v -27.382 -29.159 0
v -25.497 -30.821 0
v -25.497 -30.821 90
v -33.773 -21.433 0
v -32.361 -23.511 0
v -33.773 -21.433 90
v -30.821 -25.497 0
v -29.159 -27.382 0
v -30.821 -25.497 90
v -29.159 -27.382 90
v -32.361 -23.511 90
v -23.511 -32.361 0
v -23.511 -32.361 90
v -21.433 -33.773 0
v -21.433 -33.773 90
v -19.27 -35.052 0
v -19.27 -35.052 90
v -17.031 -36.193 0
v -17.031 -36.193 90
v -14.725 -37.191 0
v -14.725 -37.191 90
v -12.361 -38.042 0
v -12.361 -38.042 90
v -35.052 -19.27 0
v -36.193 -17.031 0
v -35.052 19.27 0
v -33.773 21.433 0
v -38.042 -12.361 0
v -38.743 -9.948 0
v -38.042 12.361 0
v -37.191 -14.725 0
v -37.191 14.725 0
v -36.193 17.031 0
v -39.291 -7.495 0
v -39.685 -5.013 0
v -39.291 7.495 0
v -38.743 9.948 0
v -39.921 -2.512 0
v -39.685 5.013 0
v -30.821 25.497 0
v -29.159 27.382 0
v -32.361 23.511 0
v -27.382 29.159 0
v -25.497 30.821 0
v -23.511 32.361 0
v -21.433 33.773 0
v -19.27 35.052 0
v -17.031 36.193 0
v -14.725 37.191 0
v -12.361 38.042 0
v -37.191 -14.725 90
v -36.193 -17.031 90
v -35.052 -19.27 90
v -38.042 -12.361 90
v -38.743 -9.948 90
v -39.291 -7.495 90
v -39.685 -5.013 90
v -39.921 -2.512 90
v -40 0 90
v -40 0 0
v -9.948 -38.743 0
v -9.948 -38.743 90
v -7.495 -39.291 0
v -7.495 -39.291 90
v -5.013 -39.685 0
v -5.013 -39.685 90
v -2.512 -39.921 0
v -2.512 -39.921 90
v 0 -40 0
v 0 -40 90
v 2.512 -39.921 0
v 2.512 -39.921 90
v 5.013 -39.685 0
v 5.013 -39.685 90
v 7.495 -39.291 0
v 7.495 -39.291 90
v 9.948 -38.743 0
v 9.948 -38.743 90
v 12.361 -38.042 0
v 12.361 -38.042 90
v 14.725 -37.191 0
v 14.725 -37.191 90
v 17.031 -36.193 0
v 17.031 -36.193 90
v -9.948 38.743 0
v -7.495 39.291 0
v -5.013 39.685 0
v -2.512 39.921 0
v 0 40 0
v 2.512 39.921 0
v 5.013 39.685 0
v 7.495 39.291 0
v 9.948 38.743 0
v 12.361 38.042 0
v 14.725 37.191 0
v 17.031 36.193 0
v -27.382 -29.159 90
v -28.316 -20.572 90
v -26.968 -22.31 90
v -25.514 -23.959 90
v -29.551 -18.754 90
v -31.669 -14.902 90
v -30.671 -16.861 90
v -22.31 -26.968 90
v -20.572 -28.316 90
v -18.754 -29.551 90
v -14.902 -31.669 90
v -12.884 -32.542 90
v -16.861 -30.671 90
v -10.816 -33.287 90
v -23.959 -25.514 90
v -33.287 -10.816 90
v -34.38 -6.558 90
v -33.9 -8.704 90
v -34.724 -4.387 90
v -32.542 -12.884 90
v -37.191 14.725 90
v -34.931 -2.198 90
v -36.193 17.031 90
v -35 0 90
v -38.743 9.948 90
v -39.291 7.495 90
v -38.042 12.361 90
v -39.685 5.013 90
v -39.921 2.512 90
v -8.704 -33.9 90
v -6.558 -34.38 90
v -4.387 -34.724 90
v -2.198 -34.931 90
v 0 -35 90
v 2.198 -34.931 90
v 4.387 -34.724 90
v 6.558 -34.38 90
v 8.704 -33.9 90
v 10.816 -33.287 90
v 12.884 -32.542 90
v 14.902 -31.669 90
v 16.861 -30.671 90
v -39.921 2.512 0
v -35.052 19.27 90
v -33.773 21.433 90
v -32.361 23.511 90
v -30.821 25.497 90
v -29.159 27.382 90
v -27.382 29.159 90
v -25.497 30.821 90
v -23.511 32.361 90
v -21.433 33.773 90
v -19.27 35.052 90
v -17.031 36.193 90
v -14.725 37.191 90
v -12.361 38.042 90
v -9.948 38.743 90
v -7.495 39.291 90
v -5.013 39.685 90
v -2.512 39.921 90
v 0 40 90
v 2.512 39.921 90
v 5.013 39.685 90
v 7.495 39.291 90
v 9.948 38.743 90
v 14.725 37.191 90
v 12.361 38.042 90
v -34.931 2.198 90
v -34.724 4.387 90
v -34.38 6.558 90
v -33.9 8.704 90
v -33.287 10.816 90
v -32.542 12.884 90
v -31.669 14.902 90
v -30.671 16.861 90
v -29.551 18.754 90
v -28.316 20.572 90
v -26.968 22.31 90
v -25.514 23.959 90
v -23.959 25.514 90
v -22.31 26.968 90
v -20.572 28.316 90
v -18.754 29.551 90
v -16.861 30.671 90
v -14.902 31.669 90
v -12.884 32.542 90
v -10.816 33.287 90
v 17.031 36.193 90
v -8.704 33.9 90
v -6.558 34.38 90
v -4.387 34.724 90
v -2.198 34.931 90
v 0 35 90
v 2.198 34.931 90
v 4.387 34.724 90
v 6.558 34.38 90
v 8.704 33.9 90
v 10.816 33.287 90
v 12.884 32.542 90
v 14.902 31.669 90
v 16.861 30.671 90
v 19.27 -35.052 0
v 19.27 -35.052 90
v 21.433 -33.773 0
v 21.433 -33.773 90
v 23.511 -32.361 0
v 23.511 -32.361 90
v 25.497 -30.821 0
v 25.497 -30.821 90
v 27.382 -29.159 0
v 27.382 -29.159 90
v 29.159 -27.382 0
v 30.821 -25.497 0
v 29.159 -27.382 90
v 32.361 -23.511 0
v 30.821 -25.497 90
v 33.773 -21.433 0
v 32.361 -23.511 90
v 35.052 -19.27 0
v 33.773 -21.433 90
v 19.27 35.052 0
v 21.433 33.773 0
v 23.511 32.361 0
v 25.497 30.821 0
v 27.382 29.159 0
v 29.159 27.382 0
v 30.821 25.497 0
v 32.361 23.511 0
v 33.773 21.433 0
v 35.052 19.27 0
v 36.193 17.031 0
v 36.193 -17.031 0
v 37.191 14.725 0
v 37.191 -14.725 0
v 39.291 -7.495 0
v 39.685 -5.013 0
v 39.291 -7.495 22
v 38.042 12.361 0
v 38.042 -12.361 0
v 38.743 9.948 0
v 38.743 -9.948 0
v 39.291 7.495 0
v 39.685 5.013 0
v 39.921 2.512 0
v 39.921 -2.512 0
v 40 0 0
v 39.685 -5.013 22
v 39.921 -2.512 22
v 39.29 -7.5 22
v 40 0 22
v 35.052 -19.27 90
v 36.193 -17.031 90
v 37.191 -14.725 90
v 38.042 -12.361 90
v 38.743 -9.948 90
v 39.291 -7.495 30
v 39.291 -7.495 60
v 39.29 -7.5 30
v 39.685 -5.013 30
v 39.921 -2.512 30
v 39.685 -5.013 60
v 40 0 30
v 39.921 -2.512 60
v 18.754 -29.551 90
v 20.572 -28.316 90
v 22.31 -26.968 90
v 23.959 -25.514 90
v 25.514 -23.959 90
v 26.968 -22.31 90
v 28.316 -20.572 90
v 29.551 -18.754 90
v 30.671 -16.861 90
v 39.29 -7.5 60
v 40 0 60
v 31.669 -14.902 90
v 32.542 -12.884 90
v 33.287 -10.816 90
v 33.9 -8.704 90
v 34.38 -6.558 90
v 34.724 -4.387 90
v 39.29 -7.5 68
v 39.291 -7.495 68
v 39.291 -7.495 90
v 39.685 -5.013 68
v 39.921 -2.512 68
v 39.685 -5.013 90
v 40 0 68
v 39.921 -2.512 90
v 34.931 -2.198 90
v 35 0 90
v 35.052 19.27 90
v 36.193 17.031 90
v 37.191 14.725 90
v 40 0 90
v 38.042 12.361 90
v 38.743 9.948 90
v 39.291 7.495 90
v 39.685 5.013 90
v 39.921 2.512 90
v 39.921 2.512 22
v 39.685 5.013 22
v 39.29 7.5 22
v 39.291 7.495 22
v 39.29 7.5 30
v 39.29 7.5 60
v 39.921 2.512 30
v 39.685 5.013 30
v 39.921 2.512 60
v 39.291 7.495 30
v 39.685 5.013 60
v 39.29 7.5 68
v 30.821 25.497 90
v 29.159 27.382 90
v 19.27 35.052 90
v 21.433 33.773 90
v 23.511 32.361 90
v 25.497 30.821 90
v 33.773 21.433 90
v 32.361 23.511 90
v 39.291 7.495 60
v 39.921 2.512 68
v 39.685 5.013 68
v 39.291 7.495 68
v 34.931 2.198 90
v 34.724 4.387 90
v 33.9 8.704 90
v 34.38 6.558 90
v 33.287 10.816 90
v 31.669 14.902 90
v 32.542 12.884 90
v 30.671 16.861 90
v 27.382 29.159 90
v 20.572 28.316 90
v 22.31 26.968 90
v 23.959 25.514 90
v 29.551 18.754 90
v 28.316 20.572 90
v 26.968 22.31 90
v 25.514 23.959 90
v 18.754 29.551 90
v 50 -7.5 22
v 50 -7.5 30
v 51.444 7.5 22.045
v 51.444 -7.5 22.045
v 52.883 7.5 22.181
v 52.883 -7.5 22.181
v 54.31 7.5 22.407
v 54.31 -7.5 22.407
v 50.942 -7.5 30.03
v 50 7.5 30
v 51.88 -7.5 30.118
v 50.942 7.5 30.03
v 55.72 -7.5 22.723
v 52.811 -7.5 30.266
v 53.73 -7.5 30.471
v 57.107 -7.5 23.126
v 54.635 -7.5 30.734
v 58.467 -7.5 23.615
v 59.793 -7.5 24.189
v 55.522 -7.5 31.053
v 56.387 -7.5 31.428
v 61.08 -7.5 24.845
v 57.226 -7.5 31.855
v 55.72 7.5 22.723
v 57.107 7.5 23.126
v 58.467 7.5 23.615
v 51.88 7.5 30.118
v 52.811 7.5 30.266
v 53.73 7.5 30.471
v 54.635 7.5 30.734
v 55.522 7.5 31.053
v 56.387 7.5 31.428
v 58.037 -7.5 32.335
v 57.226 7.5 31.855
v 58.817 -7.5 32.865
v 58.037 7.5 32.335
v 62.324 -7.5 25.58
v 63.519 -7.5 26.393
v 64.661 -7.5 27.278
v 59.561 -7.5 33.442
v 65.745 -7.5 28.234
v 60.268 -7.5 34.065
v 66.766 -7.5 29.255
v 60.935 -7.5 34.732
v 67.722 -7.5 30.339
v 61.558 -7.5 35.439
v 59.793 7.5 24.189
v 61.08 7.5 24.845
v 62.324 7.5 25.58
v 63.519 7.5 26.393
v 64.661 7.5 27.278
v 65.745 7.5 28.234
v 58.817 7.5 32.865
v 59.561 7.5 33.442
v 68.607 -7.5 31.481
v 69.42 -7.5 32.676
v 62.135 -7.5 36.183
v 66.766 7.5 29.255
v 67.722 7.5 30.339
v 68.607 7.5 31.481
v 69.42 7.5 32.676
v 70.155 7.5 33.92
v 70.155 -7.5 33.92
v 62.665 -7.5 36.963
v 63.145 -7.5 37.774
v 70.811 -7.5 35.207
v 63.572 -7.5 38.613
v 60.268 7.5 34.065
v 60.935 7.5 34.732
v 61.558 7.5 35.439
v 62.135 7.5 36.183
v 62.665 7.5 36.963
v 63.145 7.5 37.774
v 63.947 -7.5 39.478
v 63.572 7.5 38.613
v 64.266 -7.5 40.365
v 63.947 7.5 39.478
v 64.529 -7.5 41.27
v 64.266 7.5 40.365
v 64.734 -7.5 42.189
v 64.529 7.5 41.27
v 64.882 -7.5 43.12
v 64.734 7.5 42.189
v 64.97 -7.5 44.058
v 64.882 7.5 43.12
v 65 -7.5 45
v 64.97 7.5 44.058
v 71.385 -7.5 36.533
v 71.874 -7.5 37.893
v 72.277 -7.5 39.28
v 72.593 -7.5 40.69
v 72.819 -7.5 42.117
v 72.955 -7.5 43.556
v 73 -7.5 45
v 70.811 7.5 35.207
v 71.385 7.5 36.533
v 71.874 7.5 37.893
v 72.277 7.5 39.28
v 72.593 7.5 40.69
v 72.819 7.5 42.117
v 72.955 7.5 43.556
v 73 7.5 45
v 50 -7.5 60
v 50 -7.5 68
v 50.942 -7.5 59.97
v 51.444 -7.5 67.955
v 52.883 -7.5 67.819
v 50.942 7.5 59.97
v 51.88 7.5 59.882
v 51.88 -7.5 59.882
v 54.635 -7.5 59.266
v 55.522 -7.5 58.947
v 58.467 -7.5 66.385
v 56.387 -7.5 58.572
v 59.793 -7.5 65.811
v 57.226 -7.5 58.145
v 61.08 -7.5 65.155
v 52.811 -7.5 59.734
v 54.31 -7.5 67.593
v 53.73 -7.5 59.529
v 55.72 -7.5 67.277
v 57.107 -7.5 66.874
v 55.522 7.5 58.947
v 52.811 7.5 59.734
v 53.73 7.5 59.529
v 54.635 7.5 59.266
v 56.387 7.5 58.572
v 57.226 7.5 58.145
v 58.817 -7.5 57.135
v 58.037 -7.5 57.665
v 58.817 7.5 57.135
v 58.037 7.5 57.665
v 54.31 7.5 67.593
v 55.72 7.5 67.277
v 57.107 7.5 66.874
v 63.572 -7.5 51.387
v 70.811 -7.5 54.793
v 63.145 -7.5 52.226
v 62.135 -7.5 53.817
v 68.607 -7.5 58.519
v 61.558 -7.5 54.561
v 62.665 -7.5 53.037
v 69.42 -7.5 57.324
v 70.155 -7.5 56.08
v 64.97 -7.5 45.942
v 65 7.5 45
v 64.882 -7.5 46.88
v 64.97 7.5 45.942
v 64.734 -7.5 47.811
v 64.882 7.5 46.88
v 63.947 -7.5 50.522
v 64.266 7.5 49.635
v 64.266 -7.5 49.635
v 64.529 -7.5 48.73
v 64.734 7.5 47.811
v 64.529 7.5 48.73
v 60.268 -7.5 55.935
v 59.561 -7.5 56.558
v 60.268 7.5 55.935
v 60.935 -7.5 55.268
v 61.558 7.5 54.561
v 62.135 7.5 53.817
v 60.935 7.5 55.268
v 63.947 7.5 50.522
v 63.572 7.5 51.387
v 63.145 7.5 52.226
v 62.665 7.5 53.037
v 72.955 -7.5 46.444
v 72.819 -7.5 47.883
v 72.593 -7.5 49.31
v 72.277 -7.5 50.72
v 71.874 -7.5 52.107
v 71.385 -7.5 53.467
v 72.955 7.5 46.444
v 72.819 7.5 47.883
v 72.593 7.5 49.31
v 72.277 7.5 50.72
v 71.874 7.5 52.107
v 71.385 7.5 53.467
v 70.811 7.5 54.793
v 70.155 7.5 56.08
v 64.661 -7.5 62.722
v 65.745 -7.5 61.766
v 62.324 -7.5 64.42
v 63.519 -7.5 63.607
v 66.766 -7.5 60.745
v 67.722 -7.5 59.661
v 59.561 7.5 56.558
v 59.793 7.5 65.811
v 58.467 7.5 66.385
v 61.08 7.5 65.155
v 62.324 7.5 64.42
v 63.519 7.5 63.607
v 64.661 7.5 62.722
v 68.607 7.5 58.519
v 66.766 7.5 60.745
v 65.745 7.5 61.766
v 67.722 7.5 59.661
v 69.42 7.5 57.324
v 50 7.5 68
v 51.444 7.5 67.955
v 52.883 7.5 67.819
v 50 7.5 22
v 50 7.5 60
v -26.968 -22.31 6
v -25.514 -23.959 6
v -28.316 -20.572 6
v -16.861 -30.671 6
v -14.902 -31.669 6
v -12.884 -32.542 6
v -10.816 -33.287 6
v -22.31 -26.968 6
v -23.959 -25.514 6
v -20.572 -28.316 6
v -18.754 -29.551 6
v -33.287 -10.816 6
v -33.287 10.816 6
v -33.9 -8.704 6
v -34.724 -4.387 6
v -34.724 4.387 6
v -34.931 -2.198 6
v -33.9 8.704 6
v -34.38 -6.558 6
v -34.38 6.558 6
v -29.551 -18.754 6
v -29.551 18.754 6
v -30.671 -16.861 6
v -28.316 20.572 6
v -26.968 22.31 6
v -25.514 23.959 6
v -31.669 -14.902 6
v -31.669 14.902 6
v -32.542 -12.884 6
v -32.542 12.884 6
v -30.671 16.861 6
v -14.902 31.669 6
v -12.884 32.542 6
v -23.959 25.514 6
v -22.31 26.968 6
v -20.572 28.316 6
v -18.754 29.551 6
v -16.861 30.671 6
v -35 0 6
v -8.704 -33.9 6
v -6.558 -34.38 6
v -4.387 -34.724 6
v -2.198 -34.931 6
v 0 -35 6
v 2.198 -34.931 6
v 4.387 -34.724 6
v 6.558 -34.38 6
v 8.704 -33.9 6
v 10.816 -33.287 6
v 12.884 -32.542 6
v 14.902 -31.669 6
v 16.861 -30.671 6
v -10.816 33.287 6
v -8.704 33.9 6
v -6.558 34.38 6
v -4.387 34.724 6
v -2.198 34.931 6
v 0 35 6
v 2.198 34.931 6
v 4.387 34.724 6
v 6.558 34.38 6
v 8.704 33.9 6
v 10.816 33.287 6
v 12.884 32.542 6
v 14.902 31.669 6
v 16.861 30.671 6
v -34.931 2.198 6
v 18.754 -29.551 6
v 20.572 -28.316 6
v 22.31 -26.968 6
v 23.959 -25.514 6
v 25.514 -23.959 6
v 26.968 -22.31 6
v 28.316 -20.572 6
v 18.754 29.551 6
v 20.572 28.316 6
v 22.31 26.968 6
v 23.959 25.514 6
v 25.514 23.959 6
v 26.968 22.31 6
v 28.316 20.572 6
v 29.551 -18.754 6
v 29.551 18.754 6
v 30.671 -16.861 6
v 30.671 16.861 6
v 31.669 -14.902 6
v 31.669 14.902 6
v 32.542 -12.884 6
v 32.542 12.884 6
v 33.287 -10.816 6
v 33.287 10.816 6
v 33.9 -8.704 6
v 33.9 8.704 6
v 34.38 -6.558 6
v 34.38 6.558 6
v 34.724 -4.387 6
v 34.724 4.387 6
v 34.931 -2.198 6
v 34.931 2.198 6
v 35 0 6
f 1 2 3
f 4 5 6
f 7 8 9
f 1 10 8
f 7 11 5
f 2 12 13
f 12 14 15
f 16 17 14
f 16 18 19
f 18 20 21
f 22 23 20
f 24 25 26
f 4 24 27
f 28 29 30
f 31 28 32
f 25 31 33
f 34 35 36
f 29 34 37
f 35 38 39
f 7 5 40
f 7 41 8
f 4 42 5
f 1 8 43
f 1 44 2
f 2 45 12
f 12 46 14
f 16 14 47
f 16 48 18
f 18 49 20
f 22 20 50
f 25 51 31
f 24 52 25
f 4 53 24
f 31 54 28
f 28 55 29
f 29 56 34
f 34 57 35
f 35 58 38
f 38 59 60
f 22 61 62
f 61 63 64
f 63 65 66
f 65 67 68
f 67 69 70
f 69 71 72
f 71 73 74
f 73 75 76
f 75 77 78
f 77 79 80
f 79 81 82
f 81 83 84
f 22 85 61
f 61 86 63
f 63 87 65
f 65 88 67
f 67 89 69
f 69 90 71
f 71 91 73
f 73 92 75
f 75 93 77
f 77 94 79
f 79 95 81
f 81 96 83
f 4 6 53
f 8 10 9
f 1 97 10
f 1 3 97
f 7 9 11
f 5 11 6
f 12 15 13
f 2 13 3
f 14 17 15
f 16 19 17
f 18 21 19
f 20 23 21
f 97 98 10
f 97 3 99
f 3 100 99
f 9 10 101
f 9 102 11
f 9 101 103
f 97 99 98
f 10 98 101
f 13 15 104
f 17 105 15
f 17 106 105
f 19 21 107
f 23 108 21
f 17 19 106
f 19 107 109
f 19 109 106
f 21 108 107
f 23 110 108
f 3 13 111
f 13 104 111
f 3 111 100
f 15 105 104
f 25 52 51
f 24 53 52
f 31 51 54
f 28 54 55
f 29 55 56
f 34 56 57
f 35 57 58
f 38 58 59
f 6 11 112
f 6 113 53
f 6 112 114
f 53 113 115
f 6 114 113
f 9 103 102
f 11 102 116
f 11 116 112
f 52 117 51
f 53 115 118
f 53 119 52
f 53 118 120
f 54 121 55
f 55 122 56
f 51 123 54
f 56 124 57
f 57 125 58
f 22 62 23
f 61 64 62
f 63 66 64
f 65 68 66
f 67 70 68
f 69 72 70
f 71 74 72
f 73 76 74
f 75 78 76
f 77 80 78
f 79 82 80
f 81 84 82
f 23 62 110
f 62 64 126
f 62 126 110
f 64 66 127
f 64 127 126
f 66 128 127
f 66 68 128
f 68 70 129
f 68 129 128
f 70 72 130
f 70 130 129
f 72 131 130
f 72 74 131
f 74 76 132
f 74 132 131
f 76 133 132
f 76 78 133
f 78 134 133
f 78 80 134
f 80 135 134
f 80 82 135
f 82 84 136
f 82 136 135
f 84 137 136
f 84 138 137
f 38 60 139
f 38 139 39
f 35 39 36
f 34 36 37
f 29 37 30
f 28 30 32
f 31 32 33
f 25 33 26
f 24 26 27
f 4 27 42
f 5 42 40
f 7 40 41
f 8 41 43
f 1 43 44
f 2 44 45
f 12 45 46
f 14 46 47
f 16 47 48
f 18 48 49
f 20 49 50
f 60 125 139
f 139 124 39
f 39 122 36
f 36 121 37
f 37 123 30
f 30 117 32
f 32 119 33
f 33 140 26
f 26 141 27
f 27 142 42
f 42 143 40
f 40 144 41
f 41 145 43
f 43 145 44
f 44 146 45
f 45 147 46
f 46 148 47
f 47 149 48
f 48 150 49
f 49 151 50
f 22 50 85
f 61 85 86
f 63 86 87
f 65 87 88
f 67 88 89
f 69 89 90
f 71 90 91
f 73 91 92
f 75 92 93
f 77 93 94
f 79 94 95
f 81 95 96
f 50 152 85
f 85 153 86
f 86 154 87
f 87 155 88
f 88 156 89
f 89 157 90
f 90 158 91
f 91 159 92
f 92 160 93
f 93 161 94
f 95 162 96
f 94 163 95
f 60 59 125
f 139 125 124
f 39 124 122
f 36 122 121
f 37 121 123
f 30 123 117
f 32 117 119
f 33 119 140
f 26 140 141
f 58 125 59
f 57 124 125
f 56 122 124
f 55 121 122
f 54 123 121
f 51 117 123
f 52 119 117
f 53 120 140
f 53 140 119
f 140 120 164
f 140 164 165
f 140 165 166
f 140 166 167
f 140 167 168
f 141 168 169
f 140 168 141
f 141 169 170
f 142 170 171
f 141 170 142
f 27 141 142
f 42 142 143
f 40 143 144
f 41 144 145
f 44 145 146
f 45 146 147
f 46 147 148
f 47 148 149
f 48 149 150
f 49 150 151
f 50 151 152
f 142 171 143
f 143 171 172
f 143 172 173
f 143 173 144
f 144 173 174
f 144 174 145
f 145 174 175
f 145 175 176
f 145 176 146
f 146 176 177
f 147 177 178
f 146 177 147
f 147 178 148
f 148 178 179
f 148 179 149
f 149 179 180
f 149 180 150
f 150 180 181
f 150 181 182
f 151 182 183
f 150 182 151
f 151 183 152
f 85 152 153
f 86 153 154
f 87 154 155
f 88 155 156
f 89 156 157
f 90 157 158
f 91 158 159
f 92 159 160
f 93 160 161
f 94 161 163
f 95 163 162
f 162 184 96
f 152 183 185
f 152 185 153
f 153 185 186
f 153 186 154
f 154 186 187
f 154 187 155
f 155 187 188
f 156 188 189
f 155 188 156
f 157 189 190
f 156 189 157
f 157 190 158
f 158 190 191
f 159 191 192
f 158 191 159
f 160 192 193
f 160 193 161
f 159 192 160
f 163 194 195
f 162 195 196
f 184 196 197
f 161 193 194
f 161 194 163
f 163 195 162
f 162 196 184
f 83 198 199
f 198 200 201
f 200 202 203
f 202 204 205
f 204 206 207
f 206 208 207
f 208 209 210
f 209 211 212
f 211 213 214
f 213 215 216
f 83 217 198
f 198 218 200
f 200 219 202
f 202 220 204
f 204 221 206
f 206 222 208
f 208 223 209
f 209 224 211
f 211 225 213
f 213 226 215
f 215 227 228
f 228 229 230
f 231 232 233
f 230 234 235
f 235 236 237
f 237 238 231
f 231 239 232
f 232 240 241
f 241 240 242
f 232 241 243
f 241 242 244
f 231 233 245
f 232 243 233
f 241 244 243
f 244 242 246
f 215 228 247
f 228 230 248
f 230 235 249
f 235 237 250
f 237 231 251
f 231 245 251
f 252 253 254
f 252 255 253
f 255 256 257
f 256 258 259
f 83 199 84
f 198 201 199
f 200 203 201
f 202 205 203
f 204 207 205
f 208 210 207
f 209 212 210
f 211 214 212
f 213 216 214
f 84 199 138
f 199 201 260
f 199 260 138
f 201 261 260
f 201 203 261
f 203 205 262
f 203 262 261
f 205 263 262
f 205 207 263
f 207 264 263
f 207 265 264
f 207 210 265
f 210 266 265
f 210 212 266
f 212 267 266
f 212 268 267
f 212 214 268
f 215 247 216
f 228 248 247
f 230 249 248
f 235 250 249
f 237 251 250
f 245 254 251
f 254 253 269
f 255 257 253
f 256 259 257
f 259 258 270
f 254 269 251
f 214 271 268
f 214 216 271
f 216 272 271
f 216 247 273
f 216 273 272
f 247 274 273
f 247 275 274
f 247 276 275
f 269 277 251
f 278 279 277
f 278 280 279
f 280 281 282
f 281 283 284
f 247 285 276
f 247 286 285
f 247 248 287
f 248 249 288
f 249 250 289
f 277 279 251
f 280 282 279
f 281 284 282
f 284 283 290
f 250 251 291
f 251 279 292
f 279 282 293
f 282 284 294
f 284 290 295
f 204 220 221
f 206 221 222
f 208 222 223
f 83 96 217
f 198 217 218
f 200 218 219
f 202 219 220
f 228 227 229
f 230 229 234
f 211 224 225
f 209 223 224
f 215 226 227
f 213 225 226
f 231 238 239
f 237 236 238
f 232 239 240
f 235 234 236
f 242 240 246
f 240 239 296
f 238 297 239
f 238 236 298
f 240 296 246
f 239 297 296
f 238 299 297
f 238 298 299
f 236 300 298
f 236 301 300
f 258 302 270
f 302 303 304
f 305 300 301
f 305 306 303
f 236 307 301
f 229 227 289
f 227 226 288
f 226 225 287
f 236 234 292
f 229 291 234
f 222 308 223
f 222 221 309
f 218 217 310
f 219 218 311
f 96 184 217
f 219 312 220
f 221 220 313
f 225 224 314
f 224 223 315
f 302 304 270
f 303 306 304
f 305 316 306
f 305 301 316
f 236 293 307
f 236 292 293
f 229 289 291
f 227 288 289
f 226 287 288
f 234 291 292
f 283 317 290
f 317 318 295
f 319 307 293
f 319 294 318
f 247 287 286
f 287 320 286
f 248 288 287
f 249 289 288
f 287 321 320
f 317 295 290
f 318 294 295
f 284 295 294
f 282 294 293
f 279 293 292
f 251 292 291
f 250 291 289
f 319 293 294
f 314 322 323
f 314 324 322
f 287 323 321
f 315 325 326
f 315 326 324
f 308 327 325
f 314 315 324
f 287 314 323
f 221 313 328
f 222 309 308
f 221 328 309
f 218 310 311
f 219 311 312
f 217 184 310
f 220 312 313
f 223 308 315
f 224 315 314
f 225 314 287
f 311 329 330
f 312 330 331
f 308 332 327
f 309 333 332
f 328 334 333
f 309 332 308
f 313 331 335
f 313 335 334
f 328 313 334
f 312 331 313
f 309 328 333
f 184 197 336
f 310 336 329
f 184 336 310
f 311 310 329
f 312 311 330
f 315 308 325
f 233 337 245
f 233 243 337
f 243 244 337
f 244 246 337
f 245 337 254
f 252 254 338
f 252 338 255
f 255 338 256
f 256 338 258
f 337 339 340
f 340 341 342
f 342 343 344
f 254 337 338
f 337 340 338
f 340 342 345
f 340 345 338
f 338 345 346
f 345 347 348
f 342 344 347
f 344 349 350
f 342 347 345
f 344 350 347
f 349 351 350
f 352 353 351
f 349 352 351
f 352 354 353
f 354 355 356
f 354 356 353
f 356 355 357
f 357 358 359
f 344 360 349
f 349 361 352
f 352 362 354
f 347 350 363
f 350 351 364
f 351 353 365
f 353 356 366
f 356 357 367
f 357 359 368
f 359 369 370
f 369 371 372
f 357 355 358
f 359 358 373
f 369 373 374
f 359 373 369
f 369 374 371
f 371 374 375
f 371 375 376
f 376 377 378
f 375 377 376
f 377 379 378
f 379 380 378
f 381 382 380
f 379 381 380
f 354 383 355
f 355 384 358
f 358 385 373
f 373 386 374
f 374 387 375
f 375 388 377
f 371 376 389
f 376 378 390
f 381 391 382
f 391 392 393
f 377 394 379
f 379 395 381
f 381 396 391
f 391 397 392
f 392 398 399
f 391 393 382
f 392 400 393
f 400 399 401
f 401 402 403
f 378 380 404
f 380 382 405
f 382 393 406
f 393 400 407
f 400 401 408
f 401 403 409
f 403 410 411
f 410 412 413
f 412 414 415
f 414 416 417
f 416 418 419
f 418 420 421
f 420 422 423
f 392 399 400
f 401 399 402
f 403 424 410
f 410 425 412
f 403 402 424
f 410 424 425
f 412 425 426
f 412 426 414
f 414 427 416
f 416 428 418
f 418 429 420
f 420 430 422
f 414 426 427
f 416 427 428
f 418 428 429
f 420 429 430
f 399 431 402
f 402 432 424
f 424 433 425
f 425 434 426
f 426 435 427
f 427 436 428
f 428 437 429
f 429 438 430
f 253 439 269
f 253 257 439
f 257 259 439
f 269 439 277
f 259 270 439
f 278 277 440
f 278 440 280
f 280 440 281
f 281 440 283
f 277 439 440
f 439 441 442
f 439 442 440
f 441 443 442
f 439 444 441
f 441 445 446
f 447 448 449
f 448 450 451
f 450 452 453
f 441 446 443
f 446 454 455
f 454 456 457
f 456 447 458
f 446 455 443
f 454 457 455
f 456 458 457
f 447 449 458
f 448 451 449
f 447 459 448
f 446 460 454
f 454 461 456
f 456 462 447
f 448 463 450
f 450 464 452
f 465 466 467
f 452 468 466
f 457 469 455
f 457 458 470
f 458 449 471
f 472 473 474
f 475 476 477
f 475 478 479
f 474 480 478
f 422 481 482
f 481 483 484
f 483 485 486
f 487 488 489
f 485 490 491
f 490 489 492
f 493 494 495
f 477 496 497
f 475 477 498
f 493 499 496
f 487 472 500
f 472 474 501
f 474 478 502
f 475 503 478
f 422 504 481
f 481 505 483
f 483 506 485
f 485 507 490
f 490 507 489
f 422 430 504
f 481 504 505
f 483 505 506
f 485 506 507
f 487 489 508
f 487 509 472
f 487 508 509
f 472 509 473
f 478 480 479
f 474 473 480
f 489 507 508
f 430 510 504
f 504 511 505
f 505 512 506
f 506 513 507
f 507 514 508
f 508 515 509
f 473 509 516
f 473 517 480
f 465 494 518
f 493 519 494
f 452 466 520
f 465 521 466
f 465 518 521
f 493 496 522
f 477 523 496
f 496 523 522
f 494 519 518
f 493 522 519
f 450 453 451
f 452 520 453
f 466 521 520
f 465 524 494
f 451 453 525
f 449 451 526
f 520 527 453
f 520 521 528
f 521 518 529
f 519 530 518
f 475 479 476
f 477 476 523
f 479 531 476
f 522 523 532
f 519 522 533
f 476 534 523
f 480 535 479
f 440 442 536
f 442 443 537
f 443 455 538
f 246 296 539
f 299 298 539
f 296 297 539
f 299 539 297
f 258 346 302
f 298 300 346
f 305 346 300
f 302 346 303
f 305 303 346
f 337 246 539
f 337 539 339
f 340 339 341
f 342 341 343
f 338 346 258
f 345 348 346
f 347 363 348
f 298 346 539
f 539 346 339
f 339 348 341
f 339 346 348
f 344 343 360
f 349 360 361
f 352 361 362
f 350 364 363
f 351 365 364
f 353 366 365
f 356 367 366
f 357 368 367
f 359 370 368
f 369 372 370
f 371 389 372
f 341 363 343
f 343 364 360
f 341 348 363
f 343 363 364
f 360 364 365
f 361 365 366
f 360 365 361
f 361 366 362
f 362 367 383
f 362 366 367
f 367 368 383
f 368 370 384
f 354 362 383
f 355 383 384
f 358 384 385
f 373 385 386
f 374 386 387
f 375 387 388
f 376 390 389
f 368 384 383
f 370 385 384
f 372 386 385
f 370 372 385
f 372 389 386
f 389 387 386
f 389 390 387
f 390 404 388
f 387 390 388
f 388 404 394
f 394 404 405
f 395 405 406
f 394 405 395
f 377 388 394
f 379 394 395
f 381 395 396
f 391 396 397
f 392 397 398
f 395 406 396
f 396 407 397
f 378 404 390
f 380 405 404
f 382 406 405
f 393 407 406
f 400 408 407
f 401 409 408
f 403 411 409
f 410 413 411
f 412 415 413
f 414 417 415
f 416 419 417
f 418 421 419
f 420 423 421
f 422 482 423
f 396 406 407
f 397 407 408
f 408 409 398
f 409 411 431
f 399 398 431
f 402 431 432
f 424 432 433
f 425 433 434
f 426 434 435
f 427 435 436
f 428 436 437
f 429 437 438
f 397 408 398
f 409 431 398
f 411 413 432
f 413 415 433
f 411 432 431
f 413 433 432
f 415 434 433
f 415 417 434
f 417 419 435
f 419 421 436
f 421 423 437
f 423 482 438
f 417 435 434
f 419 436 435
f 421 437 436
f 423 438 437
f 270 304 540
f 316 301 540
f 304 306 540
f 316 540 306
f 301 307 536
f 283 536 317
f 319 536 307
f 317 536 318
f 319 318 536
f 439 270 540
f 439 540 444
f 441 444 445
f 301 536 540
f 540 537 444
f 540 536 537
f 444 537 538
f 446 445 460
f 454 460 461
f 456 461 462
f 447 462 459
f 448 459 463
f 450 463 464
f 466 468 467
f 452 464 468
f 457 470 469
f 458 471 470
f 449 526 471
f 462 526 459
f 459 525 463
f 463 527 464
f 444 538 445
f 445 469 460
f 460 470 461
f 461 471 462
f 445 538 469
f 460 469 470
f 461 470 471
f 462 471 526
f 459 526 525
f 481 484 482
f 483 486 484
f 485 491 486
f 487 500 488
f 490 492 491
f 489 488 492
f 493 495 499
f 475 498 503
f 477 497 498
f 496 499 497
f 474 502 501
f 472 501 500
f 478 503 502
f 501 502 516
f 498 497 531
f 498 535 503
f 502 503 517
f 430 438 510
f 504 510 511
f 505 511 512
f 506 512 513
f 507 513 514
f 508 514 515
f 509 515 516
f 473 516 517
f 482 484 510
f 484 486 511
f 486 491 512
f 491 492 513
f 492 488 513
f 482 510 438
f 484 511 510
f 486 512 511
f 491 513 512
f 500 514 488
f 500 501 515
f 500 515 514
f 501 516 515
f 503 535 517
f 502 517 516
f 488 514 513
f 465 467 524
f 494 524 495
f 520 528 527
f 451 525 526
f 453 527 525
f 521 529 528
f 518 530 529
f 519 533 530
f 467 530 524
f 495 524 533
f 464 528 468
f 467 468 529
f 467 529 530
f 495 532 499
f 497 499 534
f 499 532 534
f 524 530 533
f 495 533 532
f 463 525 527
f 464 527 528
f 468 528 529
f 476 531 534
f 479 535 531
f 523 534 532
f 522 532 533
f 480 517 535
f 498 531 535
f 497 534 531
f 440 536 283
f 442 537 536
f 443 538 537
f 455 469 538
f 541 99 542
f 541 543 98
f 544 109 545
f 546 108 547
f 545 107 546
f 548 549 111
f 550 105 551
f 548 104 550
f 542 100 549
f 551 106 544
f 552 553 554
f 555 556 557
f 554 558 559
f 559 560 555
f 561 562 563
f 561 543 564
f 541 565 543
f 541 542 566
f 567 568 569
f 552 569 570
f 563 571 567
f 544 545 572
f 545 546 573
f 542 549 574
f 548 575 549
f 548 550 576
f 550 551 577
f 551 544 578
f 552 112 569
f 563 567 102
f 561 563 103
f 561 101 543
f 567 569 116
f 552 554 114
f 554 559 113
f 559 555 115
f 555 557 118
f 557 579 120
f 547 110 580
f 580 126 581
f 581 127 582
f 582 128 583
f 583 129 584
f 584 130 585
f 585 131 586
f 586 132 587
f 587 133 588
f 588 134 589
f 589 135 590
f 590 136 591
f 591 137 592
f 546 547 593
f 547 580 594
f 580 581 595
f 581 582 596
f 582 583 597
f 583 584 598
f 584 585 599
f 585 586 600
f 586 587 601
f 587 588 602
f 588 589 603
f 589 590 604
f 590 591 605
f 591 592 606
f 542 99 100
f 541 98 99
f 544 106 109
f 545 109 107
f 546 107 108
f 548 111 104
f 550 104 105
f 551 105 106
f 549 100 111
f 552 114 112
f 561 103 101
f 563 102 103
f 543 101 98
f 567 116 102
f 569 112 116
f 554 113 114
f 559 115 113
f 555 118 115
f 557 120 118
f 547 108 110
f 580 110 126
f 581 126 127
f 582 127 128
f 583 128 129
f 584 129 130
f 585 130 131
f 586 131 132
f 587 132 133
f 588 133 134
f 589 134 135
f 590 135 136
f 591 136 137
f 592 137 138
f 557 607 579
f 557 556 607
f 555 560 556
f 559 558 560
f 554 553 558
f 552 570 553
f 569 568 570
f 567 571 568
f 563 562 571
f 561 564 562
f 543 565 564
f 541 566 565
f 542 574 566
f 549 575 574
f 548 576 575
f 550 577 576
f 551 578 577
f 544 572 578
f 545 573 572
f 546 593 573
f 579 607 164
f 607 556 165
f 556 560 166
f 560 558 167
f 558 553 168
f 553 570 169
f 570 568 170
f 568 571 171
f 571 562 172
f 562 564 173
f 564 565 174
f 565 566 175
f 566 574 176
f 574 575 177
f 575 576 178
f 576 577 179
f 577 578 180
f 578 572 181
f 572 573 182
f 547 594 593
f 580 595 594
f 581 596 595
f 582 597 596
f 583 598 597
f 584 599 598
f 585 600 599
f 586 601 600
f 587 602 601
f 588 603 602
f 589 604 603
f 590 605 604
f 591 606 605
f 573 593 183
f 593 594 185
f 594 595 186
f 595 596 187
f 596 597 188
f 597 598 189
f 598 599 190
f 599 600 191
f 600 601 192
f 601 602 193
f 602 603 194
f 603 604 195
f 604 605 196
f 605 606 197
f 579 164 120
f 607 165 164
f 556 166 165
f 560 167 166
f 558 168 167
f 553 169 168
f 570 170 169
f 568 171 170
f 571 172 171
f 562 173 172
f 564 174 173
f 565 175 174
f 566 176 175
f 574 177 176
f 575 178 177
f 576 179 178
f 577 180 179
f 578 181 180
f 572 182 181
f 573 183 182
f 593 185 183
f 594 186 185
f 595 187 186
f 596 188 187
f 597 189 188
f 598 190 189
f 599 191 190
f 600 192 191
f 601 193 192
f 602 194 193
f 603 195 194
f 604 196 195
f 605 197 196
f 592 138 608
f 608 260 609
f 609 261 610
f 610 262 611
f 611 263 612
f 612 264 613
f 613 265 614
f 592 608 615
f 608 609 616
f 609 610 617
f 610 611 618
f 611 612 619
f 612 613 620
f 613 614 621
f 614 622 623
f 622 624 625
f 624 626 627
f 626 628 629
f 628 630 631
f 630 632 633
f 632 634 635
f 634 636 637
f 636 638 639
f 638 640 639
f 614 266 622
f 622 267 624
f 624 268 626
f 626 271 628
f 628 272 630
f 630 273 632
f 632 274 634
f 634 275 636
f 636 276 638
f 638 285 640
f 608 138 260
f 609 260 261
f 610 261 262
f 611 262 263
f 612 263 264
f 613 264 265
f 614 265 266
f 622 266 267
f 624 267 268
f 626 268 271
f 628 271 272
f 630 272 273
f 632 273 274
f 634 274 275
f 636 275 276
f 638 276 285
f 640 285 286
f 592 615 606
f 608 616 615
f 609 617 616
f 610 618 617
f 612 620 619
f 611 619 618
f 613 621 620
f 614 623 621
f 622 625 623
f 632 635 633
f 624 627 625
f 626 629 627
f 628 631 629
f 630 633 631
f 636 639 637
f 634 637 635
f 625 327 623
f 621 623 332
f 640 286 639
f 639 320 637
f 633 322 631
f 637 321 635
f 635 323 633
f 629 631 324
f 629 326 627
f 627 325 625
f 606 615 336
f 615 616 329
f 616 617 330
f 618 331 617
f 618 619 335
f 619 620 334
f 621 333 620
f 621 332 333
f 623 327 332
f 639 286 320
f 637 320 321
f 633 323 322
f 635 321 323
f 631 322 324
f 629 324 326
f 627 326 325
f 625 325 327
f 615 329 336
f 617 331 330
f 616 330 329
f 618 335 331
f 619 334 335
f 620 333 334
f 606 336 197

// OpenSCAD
$fn = 100;

difference() {
    union() {
        // 本体外側
        cylinder(h = 90, r = 40);
        
        // 取手
        translate([40, 0, 45])
        rotate([90, 0, 0])
        linear_extrude(height = 15, center = true) {
            difference() {
                // 取手の外側
                union() {
                    translate([-10, -23]) square([20, 46]);
                    translate([10, 0]) circle(r = 23);
                }
                // 取手の内側の空間
                union() {
                    translate([-10, -15]) square([20, 30]);
                    translate([10, 0]) circle(r = 15);
                }
            }
        }
    }
    
    // 本体内側（飲み物を入れる中空部分）
    translate([0, 0, 6])
        cylinder(h = 90, r = 35);
}
